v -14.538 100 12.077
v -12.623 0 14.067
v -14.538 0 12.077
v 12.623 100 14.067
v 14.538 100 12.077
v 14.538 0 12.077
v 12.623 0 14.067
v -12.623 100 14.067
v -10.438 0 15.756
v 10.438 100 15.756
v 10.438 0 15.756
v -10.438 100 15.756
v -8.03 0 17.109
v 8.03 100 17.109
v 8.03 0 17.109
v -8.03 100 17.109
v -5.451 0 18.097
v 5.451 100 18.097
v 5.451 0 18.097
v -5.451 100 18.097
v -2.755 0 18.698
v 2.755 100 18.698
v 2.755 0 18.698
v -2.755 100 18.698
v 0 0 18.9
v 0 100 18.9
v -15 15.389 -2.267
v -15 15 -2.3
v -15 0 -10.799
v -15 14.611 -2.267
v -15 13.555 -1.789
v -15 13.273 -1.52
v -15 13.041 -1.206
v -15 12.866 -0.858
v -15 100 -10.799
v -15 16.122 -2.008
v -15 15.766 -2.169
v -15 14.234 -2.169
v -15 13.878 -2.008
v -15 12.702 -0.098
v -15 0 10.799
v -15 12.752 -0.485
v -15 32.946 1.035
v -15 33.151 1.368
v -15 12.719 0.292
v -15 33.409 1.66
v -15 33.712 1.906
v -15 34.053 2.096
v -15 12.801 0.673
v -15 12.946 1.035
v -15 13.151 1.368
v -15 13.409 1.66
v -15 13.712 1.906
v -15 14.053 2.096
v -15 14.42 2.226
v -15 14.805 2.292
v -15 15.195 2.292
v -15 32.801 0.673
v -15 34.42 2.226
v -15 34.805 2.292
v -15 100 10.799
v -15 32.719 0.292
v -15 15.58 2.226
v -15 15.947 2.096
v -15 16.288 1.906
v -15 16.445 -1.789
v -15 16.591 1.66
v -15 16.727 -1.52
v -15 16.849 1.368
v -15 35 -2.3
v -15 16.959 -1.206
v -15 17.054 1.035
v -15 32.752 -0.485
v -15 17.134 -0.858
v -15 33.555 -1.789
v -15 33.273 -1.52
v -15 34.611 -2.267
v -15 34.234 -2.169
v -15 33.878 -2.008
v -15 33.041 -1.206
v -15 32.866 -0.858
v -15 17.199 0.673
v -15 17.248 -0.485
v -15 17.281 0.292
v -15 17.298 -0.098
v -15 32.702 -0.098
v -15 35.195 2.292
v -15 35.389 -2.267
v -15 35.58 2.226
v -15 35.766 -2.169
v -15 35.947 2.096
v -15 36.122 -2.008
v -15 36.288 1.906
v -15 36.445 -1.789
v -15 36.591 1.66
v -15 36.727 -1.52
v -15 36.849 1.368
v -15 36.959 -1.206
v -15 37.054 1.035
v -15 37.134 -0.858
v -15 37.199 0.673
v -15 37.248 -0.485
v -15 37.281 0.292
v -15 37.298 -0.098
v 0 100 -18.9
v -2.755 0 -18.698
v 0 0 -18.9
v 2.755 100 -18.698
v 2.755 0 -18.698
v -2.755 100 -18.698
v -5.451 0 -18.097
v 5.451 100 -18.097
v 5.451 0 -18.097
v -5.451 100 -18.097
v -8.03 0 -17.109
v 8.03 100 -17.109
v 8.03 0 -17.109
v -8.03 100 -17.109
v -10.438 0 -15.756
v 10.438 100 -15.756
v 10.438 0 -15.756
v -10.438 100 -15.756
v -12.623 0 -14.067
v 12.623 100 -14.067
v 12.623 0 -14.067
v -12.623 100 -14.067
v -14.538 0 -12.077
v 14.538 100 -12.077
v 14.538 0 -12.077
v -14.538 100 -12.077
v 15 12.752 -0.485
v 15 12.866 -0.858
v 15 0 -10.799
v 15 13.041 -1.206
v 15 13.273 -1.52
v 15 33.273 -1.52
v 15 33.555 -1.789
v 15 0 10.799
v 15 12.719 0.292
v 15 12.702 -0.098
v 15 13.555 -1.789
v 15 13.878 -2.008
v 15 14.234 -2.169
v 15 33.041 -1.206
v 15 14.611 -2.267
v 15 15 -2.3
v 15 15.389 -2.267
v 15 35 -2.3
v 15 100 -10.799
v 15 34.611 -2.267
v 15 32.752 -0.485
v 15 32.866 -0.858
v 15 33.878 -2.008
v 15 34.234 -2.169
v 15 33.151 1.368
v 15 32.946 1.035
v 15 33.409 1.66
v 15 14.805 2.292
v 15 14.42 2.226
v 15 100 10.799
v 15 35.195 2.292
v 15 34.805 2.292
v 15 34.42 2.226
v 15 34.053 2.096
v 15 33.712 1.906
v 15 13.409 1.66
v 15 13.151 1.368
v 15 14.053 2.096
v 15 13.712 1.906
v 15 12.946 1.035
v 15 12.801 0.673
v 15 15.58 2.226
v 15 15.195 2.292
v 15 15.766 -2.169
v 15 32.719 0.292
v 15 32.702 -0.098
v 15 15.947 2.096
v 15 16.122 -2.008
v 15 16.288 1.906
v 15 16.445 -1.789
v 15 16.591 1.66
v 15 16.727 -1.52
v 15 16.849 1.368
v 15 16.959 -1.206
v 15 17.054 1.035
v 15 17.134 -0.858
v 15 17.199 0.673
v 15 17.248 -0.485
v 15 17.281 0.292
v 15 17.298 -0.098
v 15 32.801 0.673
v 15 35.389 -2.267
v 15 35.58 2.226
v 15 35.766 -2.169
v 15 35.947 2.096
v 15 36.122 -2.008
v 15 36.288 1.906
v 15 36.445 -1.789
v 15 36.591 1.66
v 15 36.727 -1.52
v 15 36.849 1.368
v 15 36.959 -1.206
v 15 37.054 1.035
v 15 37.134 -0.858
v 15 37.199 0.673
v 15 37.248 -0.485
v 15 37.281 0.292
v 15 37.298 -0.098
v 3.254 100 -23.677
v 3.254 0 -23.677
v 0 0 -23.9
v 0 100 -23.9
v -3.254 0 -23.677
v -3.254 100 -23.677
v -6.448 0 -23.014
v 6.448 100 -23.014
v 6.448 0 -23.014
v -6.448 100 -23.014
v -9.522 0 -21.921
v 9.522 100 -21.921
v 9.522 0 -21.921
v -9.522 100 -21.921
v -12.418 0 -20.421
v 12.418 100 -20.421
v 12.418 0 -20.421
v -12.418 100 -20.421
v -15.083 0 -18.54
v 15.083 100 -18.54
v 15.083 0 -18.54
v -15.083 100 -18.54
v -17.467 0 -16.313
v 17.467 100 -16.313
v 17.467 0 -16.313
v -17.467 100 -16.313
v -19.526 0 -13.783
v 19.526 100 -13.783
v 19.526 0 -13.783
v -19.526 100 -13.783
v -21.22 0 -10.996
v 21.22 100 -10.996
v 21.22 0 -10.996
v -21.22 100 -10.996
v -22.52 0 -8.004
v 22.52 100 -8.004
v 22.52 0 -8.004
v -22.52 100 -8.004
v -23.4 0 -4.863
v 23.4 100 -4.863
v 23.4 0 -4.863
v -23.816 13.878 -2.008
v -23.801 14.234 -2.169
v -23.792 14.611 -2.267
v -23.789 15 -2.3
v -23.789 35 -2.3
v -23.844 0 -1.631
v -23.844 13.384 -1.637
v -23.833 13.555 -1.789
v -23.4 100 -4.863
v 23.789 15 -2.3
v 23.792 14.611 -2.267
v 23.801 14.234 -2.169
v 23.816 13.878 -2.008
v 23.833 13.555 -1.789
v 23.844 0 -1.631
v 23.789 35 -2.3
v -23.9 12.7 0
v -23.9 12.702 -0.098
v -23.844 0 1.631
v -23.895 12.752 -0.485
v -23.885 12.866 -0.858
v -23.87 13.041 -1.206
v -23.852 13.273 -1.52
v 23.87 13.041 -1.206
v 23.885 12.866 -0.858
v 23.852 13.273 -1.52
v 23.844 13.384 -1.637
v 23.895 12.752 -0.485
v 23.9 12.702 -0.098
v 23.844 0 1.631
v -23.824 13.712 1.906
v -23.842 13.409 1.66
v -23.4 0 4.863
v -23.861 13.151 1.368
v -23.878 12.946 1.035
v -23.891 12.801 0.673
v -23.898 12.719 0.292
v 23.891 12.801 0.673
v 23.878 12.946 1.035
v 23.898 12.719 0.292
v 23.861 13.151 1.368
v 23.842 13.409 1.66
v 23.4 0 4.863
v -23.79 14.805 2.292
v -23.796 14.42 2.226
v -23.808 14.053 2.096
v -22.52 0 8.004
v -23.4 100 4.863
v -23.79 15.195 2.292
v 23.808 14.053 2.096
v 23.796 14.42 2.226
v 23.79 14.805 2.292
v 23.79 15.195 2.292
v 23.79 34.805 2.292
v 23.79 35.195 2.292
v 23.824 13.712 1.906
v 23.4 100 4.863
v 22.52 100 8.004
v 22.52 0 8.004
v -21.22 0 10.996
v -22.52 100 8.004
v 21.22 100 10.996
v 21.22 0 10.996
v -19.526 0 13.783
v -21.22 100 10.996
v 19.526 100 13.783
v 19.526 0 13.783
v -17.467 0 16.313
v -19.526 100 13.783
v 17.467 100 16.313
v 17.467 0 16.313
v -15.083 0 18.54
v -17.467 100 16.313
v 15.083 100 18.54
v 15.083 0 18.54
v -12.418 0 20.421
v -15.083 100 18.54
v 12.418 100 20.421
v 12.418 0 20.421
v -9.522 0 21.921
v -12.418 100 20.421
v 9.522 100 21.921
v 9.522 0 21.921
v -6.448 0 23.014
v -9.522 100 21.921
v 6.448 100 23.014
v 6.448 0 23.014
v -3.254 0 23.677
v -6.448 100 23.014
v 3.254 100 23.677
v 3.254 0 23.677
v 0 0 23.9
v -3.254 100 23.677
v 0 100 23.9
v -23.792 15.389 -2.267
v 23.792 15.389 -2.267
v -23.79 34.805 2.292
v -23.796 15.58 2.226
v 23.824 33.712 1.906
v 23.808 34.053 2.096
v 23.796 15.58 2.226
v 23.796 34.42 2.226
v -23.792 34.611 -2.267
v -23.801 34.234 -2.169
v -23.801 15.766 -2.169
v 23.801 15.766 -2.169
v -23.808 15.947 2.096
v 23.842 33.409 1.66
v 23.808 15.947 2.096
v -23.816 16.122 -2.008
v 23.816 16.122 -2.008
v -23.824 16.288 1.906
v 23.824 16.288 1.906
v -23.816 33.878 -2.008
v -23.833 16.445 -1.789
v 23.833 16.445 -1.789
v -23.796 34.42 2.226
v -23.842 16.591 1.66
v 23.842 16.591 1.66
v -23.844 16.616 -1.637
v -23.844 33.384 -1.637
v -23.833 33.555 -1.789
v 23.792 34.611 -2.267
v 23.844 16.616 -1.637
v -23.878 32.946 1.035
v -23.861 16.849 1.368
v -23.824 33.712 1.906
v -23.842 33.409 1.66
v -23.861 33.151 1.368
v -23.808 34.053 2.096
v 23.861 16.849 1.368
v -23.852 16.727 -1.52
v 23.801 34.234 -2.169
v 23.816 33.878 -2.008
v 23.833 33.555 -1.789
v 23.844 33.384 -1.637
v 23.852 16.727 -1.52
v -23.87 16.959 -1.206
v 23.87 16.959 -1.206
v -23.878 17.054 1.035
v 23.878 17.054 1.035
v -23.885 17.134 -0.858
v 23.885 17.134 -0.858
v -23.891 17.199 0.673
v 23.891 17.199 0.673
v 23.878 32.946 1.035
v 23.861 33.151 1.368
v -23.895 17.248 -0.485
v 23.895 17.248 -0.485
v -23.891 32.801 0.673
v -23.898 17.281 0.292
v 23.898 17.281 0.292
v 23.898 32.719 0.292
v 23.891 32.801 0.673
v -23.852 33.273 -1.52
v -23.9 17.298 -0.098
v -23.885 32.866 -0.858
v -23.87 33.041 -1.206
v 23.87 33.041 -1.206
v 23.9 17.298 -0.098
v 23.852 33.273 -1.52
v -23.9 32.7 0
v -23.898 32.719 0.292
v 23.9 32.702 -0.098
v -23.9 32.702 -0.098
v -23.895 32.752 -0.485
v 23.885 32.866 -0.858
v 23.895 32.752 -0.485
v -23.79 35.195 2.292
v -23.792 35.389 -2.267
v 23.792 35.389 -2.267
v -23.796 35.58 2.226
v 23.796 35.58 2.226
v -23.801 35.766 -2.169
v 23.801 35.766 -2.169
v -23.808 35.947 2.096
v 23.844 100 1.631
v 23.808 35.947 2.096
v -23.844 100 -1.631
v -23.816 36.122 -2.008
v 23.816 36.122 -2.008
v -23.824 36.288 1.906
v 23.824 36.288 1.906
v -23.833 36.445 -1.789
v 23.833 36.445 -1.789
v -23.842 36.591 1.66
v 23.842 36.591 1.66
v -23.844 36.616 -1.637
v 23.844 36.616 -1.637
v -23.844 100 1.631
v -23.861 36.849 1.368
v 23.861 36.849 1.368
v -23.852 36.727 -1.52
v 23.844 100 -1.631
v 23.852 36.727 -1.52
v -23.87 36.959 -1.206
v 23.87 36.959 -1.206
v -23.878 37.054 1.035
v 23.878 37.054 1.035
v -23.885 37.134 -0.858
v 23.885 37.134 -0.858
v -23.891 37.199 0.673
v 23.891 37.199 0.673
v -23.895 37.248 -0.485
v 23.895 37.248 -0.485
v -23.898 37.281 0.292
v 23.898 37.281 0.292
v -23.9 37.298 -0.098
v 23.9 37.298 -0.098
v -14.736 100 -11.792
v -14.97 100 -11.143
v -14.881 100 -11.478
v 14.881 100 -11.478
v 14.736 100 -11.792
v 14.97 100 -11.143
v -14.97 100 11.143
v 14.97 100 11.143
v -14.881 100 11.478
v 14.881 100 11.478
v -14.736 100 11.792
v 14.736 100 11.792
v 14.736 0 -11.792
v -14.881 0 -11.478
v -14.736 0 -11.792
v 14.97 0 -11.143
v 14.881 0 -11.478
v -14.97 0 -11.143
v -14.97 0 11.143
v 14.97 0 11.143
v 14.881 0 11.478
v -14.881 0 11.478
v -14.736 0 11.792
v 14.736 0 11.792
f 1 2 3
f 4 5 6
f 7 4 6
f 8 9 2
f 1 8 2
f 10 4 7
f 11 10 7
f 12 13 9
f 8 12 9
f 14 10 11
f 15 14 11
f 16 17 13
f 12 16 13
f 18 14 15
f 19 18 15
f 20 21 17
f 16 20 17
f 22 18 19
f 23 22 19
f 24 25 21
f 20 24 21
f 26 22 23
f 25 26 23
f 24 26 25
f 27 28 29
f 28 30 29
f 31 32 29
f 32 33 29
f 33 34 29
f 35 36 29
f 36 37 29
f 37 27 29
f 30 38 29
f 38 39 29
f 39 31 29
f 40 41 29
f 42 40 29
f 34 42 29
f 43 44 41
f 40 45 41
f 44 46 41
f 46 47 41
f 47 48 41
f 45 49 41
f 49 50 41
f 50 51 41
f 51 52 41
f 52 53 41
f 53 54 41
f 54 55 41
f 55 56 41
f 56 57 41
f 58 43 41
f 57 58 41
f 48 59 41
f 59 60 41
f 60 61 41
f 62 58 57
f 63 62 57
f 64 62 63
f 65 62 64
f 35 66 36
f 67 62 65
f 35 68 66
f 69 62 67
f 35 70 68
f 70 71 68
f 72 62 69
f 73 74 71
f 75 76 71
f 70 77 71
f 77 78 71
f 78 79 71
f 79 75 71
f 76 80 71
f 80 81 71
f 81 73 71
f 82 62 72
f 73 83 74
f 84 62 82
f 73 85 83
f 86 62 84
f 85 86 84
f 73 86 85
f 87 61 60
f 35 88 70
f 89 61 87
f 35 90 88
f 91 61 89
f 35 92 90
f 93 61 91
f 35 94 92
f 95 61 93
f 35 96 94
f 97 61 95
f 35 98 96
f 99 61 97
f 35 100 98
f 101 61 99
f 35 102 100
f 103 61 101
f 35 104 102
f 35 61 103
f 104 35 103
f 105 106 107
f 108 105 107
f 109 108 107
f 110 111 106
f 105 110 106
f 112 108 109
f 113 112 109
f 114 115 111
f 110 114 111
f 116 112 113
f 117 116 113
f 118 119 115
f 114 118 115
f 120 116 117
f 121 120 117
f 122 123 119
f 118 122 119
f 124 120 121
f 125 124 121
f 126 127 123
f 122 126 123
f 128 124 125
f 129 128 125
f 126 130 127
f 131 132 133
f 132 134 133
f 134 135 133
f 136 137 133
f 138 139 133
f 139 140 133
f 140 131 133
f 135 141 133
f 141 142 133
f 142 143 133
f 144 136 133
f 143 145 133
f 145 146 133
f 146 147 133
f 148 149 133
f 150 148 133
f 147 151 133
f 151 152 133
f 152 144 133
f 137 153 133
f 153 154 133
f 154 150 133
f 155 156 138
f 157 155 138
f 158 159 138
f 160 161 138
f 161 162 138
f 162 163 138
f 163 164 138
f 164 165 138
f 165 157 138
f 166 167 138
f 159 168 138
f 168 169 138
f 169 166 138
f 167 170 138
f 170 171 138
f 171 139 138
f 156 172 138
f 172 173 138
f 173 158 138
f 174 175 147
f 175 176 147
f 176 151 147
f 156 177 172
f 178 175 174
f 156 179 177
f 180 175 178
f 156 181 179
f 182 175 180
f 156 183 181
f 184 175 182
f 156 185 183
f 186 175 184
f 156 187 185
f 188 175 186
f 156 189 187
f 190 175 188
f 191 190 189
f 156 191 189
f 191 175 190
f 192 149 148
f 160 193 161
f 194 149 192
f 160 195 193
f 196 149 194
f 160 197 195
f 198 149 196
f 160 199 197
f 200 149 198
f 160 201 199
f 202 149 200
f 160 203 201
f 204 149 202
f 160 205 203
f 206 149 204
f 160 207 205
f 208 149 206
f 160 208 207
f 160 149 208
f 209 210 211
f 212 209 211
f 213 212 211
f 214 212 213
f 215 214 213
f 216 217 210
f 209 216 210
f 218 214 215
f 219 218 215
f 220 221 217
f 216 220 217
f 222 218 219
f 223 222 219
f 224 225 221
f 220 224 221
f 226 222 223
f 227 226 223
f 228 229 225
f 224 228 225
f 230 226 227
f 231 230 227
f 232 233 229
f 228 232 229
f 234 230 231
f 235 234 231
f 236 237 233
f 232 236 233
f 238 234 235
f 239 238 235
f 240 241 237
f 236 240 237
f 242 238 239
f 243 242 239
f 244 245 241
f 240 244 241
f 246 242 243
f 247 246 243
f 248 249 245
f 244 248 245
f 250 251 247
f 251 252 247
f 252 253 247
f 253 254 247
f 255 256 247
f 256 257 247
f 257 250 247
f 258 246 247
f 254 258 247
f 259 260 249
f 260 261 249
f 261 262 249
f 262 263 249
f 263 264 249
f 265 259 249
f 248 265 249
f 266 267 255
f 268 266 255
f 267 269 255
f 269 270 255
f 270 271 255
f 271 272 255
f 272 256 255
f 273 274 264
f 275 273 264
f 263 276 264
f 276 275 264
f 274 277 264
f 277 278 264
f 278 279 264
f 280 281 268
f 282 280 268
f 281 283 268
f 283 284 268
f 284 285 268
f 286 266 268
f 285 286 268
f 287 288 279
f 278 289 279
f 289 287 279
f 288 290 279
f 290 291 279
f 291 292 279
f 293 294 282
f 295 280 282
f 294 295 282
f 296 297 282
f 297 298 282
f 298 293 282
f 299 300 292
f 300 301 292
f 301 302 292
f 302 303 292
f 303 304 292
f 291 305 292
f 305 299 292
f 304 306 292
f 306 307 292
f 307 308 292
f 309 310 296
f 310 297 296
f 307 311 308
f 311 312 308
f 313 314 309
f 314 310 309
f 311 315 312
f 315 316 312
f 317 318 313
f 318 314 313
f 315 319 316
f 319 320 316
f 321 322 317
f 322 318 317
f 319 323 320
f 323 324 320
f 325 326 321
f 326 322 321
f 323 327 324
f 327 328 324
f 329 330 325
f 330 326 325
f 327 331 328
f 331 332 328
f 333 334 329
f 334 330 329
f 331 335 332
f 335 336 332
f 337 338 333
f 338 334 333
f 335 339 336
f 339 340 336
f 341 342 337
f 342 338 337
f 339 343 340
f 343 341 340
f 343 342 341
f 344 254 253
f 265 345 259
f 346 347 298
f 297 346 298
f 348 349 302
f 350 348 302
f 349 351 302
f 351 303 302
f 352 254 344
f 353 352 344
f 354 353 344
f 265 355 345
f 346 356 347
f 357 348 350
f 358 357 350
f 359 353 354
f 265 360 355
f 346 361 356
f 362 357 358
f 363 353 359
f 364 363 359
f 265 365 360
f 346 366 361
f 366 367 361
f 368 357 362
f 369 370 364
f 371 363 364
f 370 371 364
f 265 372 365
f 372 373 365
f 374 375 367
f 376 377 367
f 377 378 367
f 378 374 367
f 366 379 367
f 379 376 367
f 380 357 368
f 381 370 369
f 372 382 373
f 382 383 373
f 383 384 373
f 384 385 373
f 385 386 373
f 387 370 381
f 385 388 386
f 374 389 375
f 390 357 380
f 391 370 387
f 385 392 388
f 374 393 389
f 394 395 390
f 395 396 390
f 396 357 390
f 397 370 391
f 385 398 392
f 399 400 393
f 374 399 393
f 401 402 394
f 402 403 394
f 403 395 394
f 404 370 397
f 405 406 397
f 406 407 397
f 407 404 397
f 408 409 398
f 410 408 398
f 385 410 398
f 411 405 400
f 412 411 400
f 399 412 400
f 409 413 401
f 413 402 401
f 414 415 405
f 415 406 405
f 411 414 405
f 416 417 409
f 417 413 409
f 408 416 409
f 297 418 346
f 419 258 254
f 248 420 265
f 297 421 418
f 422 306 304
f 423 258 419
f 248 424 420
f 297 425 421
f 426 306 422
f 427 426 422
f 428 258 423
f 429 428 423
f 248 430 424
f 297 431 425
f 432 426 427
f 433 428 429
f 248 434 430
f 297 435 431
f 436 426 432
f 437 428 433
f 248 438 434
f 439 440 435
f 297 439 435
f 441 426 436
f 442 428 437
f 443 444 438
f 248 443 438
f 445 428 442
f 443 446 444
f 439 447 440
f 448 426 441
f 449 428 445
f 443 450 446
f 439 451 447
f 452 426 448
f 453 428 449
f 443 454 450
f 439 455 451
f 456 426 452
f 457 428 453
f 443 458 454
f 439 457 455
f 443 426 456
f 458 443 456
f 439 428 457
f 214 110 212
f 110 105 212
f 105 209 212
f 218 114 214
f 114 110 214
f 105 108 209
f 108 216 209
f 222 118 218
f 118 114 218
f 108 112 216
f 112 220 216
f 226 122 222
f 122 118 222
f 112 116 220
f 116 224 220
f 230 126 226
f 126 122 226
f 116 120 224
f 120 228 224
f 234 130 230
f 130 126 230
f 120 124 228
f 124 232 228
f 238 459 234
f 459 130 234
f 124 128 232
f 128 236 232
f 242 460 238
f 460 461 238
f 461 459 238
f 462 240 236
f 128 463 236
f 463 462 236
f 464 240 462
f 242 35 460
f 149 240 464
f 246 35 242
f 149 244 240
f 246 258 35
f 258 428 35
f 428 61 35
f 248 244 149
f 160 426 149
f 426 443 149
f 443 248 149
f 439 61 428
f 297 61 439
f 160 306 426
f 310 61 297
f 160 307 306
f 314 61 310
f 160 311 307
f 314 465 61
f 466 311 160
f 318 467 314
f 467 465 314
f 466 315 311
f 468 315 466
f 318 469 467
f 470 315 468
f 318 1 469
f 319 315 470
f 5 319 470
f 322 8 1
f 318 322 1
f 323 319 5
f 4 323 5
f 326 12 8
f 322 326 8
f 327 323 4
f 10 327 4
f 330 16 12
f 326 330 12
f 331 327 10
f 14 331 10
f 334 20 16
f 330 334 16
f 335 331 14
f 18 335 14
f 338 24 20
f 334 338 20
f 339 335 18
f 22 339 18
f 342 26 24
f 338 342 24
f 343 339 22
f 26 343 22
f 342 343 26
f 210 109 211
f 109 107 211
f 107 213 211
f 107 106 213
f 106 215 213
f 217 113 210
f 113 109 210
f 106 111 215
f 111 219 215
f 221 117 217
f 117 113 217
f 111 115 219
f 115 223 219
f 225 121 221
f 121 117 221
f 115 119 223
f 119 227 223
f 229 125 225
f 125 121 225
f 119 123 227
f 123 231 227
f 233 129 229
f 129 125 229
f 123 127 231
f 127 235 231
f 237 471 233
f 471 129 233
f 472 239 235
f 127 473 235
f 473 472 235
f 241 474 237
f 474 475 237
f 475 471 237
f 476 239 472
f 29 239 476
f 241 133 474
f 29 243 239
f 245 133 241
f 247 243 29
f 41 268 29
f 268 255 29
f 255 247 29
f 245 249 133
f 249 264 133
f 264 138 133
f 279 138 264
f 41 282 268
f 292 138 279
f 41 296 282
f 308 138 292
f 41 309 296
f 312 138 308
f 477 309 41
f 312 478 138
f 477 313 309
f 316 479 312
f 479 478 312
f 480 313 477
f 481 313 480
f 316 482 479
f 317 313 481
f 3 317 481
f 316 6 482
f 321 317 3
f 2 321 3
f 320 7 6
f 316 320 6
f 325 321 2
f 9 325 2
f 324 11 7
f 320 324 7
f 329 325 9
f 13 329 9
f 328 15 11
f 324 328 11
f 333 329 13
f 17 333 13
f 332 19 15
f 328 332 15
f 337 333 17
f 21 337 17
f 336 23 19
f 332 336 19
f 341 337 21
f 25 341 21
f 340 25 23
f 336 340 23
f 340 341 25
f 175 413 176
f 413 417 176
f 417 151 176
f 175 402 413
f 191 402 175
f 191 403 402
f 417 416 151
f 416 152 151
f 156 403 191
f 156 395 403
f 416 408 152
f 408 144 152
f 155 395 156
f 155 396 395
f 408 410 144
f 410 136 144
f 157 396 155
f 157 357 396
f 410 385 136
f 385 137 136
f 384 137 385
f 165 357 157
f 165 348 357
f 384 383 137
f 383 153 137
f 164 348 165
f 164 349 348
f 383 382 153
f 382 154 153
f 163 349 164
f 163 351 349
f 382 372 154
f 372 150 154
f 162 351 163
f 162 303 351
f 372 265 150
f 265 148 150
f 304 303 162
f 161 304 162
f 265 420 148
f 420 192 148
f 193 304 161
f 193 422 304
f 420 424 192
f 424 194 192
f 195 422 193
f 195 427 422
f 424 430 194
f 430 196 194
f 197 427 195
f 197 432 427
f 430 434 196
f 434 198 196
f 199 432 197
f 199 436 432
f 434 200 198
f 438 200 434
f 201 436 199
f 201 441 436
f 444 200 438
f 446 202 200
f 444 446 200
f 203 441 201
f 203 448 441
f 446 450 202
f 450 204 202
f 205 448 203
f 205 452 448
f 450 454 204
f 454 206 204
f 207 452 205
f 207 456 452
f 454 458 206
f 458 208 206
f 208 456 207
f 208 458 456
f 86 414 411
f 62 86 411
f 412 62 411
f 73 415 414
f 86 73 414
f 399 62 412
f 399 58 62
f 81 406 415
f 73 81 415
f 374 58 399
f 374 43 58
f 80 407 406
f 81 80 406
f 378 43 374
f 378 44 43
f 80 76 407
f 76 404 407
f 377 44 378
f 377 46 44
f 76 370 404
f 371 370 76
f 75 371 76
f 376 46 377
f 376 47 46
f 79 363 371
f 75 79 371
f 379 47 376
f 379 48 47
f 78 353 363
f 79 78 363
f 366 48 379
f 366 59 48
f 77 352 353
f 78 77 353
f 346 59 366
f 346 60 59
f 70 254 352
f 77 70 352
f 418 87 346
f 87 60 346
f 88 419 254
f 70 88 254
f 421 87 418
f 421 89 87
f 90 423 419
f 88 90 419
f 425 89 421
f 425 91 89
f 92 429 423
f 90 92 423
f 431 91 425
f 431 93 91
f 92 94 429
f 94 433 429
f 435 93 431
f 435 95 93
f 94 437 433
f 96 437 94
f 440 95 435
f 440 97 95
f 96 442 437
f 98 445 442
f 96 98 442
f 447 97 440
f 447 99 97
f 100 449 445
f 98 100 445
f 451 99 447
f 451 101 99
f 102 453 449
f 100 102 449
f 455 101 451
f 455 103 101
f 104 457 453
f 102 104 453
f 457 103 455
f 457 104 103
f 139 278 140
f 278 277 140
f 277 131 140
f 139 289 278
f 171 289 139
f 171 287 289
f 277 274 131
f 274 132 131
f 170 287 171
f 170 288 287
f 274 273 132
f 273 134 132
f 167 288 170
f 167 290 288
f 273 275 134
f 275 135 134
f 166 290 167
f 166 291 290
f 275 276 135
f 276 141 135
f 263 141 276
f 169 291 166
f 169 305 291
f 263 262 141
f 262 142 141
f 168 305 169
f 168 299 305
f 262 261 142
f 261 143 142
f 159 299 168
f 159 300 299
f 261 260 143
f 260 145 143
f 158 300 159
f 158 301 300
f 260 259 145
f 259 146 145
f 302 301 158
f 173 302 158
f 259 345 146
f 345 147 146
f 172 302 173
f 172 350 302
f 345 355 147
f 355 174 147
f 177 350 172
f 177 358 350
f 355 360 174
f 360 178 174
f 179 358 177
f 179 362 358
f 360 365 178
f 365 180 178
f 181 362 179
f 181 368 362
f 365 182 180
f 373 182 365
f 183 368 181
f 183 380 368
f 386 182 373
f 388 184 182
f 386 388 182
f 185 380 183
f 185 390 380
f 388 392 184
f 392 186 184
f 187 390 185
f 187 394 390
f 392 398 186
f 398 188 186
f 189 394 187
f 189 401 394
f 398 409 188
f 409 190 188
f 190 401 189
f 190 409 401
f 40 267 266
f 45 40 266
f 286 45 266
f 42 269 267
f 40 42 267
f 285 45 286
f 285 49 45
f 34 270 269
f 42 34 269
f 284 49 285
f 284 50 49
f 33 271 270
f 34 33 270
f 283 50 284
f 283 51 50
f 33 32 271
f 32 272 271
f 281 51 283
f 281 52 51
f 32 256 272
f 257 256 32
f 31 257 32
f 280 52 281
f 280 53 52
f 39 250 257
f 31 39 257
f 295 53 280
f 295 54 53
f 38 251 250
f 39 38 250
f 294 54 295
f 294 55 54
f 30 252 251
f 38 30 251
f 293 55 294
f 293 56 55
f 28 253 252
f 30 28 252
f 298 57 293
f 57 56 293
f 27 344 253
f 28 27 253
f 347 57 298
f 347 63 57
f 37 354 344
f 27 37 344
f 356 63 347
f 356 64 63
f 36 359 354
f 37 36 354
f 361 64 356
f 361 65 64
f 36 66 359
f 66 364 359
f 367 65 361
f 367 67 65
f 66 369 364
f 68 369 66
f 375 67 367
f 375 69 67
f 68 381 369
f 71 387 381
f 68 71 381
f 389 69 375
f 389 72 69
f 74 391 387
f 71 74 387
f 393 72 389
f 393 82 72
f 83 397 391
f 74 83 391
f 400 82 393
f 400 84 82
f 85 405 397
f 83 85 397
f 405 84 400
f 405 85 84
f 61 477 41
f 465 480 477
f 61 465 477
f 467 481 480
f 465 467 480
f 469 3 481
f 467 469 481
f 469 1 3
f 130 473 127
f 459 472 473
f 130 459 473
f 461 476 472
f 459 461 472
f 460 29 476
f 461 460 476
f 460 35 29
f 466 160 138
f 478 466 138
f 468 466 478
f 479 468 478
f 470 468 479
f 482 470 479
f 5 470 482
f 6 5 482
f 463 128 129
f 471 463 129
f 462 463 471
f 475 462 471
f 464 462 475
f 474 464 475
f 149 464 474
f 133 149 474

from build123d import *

# Parameters (mm, degrees)
SKETCH1_R               = 23.9
SKETCH1_R_2             = 18.9
BOSS_EXTRUDE1_DEPTH     = 100
SKETCH2_R               = 2.3
CUT_EXTRUDE1_DEPTH      = 24.9
CUT_EXTRUDE1_DEPTH_BACK = 24.9
FILLET1_R               = 2


with BuildPart() as part:
    # Sketch1 → Boss-Extrude1 (new body)
    with BuildSketch(Plane(origin=(0, 0, 0), x_dir=(1, 0, 0), z_dir=(0, 1, 0))):
        Circle(SKETCH1_R)
        Circle(SKETCH1_R_2, mode=Mode.SUBTRACT)
        with BuildLine():
            Line((-15, -11.498260738), (-15, 11.498260738))
            ThreePointArc((-15, 11.498260738), (-18.9, 0), (-15, -11.498260738))
        make_face()
        with BuildLine():
            ThreePointArc((18.9, 0), (17.898463621, 6.070831903), (15, 11.498260738))
            Line((15, 11.498260738), (15, -11.498260738))
            ThreePointArc((15, -11.498260738), (17.898463621, -6.070831903), (18.9, 0))
        make_face()
    extrude(amount=BOSS_EXTRUDE1_DEPTH)

    # Sketch2 → Cut-Extrude1 (cut, two sides)
    with BuildSketch(Plane(origin=(0, 0, 0), x_dir=(0, 0, -1), z_dir=(1, 0, 0))) as cut_extrude1_sk:
        with Locations((0, 15)):
            Circle(SKETCH2_R)
        with Locations((0, 35)):
            Circle(SKETCH2_R)
    extrude(amount=CUT_EXTRUDE1_DEPTH, mode=Mode.SUBTRACT)
    extrude(cut_extrude1_sk.sketch, amount=-CUT_EXTRUDE1_DEPTH_BACK, mode=Mode.SUBTRACT)

    # Fillet1
    fillet1_edges = [part.edges().sort_by_distance(p)[0] for p in [
        (15, 50, 11.498260738),
        (15, 50, -11.498260738),
        (-15, 50, -11.498260738),
        (-15, 50, 11.498260738),
    ]]
    fillet(fillet1_edges, radius=FILLET1_R)


solid = part.part
